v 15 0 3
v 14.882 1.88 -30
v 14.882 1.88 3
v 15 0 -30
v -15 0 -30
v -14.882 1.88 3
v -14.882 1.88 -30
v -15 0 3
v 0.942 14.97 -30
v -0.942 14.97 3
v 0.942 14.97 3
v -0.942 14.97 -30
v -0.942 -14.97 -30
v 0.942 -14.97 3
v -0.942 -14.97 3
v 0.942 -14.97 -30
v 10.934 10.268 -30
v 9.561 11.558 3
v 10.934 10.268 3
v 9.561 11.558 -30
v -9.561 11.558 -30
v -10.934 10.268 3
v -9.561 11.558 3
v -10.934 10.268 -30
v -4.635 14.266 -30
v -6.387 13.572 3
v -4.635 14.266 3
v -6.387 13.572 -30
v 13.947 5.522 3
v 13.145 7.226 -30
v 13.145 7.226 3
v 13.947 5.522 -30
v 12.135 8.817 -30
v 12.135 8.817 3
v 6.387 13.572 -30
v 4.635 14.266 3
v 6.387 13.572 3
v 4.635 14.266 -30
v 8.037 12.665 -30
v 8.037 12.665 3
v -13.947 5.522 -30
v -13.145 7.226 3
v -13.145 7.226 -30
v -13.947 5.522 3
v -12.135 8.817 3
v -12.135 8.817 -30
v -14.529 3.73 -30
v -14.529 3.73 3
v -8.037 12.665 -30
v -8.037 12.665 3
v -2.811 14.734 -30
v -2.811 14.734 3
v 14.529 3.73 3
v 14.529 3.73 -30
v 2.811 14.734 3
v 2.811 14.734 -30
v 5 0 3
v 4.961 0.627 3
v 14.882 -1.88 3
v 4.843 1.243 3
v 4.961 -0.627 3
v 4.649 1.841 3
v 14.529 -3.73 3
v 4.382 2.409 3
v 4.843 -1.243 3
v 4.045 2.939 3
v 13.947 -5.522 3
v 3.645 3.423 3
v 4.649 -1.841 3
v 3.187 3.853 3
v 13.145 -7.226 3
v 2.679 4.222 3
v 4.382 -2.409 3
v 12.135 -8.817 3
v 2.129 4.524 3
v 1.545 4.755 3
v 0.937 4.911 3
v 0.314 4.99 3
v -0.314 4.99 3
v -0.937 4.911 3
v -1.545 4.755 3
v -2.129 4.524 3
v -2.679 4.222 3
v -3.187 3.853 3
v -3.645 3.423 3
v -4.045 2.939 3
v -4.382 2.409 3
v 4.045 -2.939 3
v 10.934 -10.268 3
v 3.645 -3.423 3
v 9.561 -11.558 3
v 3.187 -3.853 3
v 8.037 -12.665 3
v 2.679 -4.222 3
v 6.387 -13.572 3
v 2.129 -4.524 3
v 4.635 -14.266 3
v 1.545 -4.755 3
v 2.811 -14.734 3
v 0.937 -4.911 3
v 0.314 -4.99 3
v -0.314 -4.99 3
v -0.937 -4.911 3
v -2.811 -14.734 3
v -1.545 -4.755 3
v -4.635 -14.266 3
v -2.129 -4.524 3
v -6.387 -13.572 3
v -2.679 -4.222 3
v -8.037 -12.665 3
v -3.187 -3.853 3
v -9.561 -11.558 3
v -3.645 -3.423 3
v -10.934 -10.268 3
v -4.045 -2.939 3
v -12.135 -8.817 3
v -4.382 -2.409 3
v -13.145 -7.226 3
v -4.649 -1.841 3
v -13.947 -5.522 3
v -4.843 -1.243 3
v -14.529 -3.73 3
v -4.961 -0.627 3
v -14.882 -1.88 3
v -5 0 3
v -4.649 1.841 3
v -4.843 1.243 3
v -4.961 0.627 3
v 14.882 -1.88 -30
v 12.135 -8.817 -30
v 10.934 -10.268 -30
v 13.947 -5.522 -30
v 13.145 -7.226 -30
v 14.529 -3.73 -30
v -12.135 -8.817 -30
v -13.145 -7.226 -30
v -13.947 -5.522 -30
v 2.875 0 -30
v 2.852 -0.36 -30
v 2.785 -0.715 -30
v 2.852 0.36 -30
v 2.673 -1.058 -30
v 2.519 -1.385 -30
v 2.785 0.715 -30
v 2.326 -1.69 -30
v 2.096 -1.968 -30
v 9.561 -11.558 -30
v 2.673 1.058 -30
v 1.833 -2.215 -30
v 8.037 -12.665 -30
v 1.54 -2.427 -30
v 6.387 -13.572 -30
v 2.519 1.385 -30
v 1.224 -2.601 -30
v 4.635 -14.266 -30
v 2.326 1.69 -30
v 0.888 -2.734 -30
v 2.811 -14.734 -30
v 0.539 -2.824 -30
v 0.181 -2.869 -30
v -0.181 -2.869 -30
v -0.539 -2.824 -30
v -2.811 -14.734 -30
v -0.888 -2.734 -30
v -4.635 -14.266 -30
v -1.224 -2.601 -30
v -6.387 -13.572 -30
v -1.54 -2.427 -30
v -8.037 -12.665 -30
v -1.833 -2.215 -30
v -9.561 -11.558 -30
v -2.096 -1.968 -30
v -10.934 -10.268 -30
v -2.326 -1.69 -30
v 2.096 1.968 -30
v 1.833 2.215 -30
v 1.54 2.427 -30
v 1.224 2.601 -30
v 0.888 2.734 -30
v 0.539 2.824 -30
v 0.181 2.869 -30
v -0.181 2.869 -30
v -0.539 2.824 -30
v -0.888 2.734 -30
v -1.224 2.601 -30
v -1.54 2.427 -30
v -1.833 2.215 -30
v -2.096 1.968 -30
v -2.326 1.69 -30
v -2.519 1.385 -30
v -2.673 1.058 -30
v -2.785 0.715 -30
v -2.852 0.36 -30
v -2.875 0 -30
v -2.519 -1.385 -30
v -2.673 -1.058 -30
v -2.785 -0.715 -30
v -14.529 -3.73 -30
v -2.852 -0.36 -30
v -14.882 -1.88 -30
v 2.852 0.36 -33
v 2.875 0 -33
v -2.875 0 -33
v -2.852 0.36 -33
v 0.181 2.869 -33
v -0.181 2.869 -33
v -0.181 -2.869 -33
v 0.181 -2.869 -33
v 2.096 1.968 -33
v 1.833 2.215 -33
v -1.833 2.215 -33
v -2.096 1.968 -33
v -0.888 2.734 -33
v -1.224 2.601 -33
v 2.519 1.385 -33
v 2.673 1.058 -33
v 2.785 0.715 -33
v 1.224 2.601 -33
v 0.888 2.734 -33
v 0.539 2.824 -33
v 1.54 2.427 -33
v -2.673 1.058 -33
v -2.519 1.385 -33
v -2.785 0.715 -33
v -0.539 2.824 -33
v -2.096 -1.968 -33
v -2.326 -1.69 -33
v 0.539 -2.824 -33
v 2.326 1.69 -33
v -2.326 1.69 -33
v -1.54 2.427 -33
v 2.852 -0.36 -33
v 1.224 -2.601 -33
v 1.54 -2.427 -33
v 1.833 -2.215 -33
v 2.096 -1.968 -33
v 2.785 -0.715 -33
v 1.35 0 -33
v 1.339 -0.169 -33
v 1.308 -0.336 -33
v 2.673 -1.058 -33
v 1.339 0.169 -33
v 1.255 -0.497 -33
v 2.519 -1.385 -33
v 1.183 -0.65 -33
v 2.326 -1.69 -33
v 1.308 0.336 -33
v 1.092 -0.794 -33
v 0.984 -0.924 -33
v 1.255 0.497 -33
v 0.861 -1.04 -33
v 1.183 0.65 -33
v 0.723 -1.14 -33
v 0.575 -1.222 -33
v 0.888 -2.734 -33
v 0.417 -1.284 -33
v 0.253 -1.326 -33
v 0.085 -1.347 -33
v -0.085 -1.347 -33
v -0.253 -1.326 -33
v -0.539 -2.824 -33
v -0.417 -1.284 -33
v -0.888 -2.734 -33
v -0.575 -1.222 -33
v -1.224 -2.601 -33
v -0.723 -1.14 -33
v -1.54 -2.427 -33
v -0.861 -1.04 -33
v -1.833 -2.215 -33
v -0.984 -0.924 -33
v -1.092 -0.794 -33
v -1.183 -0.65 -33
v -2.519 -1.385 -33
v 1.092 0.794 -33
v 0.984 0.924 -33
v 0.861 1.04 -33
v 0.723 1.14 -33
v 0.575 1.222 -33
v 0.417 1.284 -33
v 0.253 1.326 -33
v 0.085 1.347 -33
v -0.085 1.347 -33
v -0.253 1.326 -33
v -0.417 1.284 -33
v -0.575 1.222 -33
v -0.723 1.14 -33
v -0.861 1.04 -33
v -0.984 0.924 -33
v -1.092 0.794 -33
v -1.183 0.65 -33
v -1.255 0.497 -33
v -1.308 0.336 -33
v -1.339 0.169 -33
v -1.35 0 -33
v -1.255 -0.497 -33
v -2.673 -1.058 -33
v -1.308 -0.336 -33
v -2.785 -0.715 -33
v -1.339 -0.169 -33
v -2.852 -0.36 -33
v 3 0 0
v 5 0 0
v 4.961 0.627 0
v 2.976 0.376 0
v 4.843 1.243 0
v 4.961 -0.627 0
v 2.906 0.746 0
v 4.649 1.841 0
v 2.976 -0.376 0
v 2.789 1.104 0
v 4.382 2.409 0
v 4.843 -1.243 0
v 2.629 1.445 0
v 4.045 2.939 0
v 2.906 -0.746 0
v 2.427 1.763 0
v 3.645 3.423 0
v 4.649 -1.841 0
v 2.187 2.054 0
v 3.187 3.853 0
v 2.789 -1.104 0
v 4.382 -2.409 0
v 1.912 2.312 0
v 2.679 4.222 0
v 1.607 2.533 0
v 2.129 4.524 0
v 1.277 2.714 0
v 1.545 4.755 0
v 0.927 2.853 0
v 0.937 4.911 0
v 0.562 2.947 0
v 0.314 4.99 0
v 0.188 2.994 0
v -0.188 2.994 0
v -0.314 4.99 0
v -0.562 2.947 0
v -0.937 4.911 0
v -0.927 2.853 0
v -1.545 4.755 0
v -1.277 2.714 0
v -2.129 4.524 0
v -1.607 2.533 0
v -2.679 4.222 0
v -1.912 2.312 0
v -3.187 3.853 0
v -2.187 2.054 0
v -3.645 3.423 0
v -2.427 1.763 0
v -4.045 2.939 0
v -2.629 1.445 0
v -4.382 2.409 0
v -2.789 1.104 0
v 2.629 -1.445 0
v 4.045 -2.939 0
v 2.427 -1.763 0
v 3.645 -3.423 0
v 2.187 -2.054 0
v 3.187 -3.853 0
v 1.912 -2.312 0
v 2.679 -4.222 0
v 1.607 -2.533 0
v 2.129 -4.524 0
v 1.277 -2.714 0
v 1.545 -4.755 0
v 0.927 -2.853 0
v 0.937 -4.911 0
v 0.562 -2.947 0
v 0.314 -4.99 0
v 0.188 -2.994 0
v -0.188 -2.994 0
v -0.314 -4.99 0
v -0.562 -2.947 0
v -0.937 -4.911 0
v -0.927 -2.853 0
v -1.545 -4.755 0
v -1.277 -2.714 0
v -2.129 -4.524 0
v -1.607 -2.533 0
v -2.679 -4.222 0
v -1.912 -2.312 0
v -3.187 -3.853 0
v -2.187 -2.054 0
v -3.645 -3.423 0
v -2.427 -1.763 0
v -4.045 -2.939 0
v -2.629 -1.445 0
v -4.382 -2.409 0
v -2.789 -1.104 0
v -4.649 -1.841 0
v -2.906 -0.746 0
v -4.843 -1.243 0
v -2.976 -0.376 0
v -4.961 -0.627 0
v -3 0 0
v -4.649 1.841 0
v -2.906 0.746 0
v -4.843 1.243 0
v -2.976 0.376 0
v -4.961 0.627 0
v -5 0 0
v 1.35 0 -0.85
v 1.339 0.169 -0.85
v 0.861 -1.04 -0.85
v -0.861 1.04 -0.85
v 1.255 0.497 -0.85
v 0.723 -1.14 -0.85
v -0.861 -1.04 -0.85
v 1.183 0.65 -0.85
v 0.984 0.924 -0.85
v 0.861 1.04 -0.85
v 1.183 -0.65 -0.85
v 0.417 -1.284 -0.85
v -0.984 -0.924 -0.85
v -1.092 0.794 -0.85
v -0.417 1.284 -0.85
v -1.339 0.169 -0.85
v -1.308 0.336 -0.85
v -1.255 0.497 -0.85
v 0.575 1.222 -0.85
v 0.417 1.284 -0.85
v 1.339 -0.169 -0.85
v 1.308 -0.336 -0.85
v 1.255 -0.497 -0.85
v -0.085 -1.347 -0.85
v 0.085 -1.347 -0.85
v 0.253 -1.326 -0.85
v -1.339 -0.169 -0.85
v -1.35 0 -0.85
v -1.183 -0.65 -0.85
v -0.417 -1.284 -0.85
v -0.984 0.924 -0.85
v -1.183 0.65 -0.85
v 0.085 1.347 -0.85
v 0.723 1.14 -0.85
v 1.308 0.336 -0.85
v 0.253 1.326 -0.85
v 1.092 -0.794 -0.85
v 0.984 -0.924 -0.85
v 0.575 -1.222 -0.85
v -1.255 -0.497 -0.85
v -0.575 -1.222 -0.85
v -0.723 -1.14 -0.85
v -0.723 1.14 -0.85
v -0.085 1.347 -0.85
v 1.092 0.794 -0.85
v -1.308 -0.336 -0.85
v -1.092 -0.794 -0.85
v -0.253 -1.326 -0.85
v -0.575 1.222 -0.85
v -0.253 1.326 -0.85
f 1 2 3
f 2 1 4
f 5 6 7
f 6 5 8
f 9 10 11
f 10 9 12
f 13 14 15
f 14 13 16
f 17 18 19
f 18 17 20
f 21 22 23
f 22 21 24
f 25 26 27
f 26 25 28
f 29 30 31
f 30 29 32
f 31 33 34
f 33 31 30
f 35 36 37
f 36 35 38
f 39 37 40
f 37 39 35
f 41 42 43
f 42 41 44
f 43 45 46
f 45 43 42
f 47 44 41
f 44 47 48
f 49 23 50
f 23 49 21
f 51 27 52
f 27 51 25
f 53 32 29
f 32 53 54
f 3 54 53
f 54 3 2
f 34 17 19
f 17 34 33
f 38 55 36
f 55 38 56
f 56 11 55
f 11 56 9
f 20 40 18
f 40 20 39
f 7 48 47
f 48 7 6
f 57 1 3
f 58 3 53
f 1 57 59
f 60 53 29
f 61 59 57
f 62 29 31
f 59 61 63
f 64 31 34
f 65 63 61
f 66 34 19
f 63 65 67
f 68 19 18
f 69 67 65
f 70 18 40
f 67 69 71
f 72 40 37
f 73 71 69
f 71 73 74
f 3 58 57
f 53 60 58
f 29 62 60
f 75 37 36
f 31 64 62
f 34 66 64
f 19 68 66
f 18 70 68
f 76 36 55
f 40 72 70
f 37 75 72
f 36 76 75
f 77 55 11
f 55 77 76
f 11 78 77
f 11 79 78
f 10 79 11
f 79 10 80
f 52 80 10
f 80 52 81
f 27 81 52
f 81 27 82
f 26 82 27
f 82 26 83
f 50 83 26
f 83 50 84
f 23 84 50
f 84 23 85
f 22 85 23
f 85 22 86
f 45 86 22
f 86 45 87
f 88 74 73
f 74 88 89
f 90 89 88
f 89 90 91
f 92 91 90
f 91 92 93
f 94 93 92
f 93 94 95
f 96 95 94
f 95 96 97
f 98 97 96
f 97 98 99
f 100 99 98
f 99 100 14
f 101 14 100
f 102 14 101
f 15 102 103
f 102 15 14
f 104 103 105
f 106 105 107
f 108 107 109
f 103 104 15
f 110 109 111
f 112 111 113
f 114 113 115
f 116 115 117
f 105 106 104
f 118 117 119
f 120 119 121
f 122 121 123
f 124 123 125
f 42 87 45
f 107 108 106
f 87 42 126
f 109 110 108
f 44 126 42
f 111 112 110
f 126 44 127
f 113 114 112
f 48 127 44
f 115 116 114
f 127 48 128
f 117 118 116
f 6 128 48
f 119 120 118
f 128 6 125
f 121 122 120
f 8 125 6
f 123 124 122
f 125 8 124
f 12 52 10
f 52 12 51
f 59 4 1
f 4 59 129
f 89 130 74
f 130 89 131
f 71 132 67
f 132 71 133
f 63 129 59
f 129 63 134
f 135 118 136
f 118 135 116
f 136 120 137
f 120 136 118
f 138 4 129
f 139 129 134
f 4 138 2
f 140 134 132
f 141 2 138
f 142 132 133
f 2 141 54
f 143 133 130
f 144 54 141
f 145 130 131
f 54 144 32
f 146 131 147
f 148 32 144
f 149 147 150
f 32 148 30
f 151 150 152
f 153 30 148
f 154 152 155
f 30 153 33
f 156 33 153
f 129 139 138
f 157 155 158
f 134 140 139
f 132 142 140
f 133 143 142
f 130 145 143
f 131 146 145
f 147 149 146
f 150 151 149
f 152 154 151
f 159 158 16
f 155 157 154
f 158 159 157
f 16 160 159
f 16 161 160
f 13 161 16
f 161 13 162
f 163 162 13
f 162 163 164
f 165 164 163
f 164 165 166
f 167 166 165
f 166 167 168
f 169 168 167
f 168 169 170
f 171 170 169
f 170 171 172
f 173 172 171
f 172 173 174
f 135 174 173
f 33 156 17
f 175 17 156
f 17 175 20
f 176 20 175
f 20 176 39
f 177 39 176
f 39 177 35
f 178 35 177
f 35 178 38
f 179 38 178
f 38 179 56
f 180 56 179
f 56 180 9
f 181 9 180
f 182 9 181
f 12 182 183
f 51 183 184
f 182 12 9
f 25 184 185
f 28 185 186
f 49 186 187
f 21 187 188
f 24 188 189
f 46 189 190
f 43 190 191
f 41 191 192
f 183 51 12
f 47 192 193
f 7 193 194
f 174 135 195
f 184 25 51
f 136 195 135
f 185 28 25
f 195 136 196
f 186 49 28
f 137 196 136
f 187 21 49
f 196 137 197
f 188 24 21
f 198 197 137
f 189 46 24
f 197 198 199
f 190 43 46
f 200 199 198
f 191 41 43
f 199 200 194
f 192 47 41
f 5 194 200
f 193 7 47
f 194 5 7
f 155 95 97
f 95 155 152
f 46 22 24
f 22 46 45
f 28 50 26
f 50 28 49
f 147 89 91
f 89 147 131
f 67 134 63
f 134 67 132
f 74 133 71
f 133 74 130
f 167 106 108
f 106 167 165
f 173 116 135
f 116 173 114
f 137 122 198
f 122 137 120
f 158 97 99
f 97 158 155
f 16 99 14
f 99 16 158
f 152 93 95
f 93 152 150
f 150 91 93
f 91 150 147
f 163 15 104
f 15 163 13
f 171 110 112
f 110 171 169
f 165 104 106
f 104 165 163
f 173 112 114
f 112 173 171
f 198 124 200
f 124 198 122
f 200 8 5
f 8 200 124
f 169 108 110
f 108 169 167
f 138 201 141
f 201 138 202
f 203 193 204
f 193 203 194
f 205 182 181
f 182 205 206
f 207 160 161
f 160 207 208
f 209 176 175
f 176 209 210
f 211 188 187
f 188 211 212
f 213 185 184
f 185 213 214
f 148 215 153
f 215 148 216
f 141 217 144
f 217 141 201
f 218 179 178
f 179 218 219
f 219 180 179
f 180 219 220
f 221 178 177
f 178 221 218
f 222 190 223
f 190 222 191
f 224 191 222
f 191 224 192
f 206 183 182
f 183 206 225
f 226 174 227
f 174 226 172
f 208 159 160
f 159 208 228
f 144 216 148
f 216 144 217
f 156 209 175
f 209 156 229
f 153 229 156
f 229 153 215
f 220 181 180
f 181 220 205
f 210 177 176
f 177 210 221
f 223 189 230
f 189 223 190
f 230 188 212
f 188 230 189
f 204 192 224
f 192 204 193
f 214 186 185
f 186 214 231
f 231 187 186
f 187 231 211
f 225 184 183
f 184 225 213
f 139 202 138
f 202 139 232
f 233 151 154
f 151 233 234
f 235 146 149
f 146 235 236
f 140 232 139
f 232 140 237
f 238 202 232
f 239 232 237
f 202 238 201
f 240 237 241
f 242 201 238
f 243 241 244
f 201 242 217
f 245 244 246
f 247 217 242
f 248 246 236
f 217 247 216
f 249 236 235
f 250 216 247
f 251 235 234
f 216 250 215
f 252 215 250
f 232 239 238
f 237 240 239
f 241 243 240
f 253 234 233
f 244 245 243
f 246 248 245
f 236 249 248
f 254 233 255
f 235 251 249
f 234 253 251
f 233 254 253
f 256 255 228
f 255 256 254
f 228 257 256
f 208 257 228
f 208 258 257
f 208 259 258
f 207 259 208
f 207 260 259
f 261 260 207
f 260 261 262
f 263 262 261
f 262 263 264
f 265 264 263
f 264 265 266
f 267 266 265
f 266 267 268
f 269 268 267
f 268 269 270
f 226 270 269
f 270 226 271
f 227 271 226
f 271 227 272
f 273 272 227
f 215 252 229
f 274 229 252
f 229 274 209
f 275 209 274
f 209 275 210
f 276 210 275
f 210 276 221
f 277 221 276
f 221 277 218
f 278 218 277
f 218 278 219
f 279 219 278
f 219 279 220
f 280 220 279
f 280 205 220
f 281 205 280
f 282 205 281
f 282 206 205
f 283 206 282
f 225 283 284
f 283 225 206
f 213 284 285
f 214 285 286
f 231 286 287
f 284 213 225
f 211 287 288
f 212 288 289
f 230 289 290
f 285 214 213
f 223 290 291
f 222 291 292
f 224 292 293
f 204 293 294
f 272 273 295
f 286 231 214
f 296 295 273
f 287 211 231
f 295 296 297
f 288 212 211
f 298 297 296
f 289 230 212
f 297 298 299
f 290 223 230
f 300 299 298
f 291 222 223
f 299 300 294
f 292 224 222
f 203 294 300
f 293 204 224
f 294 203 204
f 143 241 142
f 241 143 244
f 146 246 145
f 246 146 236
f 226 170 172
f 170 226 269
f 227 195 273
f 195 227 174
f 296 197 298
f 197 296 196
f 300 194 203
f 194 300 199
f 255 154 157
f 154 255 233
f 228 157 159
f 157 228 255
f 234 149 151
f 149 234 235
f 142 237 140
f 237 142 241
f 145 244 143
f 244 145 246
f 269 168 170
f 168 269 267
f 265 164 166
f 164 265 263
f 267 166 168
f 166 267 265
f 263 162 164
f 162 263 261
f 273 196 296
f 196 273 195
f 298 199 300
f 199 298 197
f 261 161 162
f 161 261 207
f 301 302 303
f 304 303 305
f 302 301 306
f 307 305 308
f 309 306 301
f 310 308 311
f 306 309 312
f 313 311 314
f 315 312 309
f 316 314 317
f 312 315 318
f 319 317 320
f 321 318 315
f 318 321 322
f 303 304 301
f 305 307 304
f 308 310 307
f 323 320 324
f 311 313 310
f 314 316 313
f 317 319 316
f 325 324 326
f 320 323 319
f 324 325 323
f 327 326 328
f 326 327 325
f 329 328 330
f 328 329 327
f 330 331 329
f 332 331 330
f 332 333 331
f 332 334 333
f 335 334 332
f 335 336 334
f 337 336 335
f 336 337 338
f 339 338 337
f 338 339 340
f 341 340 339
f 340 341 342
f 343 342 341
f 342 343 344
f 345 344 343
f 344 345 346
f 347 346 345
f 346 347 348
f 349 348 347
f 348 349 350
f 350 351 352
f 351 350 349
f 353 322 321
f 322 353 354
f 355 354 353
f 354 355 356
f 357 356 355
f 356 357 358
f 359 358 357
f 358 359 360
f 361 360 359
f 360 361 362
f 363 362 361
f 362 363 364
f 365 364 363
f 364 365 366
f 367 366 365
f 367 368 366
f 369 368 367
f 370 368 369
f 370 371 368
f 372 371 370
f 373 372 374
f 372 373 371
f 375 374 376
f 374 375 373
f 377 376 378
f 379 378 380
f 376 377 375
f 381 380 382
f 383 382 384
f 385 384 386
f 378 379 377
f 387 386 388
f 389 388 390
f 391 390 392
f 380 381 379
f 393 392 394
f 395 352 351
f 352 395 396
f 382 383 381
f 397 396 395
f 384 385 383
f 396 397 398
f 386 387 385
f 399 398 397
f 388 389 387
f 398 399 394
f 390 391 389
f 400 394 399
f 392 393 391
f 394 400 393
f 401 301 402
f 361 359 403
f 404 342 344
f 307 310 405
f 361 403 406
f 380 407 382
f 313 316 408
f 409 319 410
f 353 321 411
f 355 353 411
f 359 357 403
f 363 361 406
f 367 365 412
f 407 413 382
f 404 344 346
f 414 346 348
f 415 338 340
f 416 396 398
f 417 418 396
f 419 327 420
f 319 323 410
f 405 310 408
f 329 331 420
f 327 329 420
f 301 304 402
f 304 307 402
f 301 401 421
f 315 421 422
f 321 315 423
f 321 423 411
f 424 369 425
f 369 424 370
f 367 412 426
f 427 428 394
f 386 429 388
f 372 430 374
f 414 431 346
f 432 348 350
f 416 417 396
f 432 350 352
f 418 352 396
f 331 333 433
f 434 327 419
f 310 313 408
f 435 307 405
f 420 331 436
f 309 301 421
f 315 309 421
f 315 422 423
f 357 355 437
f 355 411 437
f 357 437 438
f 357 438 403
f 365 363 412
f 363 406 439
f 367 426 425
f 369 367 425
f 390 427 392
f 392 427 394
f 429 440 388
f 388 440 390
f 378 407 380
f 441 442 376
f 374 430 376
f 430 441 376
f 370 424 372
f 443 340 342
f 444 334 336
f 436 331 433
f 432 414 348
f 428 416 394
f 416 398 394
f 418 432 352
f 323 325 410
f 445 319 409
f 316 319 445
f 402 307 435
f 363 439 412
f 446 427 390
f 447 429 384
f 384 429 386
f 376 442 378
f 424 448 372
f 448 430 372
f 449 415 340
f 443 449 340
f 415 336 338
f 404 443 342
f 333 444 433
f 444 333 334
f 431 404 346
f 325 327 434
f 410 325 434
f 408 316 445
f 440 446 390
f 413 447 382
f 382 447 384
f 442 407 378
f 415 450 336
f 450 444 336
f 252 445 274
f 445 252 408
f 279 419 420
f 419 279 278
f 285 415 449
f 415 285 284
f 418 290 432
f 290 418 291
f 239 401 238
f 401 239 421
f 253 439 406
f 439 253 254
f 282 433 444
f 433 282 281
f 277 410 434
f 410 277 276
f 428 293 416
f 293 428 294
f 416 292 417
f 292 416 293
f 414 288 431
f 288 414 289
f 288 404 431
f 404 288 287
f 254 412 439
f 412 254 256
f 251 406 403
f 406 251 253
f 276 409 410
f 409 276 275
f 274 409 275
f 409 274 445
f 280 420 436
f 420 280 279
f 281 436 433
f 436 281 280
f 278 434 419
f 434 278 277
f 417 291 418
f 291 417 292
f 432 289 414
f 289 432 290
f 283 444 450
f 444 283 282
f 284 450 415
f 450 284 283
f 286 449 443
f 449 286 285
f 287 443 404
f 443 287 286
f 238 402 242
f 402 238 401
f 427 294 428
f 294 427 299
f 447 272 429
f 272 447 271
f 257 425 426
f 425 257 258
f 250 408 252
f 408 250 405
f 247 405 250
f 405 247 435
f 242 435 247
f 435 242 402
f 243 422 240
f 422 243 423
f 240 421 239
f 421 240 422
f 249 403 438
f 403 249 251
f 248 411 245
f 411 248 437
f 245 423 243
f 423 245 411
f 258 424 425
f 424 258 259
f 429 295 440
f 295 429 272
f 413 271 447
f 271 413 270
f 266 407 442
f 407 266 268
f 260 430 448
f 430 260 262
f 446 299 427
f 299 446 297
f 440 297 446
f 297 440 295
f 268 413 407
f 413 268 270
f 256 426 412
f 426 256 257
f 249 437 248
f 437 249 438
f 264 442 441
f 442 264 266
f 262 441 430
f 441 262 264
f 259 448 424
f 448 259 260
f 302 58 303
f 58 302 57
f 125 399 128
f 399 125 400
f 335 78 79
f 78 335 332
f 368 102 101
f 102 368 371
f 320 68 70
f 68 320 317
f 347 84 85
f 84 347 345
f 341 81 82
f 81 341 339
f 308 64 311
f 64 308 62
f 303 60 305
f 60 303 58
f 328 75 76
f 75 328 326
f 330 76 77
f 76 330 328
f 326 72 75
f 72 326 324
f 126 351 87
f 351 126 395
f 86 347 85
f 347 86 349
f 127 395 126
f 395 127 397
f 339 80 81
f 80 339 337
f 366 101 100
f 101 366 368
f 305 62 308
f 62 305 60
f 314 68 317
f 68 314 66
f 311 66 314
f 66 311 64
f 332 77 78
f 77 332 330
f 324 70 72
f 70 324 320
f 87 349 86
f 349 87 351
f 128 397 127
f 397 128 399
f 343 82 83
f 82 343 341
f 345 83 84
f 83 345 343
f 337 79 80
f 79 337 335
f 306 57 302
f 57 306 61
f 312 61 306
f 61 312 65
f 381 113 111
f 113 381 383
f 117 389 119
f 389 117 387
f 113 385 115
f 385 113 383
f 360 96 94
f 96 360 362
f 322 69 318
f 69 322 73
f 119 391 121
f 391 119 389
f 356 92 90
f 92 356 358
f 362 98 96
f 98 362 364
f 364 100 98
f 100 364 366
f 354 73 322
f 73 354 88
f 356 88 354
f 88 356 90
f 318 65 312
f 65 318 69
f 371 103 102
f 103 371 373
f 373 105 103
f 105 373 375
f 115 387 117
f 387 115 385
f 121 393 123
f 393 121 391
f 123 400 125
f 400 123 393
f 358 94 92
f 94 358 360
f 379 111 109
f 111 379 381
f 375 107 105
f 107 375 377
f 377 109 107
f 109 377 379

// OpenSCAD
$fn = 50;


difference() {
	union() {
		translate(v = [0, 0, -30.0000000000]) {
			cylinder(h = 33, r = 15.0000000000);
		}
		#translate(v = [0, 0, -33.0000000000]) {
			cylinder(h = 33, r = 2.8750000000);
		}
	}
	union() {
		translate(v = [0, 0, 0]) {
			rotate(a = [0, 0, 0]) {
				difference() {
					union() {
						translate(v = [0, 0, -33.0000000000]) {
							cylinder(h = 33, r = 1.0000000000);
						}
						translate(v = [0, 0, -0.8500000000]) {
							cylinder(h = 0.8500000000, r1 = 1.3500000000, r2 = 3.0000000000);
						}
						translate(v = [0, 0, -33.0000000000]) {
							cylinder(h = 33, r = 1.3500000000);
						}
						translate(v = [0, 0, -33.0000000000]) {
							cylinder(h = 33, r = 1.0000000000);
						}
					}
					union();
				}
			}
		}
		#cylinder(h = 3, r = 5.0000000000);
	}
}
